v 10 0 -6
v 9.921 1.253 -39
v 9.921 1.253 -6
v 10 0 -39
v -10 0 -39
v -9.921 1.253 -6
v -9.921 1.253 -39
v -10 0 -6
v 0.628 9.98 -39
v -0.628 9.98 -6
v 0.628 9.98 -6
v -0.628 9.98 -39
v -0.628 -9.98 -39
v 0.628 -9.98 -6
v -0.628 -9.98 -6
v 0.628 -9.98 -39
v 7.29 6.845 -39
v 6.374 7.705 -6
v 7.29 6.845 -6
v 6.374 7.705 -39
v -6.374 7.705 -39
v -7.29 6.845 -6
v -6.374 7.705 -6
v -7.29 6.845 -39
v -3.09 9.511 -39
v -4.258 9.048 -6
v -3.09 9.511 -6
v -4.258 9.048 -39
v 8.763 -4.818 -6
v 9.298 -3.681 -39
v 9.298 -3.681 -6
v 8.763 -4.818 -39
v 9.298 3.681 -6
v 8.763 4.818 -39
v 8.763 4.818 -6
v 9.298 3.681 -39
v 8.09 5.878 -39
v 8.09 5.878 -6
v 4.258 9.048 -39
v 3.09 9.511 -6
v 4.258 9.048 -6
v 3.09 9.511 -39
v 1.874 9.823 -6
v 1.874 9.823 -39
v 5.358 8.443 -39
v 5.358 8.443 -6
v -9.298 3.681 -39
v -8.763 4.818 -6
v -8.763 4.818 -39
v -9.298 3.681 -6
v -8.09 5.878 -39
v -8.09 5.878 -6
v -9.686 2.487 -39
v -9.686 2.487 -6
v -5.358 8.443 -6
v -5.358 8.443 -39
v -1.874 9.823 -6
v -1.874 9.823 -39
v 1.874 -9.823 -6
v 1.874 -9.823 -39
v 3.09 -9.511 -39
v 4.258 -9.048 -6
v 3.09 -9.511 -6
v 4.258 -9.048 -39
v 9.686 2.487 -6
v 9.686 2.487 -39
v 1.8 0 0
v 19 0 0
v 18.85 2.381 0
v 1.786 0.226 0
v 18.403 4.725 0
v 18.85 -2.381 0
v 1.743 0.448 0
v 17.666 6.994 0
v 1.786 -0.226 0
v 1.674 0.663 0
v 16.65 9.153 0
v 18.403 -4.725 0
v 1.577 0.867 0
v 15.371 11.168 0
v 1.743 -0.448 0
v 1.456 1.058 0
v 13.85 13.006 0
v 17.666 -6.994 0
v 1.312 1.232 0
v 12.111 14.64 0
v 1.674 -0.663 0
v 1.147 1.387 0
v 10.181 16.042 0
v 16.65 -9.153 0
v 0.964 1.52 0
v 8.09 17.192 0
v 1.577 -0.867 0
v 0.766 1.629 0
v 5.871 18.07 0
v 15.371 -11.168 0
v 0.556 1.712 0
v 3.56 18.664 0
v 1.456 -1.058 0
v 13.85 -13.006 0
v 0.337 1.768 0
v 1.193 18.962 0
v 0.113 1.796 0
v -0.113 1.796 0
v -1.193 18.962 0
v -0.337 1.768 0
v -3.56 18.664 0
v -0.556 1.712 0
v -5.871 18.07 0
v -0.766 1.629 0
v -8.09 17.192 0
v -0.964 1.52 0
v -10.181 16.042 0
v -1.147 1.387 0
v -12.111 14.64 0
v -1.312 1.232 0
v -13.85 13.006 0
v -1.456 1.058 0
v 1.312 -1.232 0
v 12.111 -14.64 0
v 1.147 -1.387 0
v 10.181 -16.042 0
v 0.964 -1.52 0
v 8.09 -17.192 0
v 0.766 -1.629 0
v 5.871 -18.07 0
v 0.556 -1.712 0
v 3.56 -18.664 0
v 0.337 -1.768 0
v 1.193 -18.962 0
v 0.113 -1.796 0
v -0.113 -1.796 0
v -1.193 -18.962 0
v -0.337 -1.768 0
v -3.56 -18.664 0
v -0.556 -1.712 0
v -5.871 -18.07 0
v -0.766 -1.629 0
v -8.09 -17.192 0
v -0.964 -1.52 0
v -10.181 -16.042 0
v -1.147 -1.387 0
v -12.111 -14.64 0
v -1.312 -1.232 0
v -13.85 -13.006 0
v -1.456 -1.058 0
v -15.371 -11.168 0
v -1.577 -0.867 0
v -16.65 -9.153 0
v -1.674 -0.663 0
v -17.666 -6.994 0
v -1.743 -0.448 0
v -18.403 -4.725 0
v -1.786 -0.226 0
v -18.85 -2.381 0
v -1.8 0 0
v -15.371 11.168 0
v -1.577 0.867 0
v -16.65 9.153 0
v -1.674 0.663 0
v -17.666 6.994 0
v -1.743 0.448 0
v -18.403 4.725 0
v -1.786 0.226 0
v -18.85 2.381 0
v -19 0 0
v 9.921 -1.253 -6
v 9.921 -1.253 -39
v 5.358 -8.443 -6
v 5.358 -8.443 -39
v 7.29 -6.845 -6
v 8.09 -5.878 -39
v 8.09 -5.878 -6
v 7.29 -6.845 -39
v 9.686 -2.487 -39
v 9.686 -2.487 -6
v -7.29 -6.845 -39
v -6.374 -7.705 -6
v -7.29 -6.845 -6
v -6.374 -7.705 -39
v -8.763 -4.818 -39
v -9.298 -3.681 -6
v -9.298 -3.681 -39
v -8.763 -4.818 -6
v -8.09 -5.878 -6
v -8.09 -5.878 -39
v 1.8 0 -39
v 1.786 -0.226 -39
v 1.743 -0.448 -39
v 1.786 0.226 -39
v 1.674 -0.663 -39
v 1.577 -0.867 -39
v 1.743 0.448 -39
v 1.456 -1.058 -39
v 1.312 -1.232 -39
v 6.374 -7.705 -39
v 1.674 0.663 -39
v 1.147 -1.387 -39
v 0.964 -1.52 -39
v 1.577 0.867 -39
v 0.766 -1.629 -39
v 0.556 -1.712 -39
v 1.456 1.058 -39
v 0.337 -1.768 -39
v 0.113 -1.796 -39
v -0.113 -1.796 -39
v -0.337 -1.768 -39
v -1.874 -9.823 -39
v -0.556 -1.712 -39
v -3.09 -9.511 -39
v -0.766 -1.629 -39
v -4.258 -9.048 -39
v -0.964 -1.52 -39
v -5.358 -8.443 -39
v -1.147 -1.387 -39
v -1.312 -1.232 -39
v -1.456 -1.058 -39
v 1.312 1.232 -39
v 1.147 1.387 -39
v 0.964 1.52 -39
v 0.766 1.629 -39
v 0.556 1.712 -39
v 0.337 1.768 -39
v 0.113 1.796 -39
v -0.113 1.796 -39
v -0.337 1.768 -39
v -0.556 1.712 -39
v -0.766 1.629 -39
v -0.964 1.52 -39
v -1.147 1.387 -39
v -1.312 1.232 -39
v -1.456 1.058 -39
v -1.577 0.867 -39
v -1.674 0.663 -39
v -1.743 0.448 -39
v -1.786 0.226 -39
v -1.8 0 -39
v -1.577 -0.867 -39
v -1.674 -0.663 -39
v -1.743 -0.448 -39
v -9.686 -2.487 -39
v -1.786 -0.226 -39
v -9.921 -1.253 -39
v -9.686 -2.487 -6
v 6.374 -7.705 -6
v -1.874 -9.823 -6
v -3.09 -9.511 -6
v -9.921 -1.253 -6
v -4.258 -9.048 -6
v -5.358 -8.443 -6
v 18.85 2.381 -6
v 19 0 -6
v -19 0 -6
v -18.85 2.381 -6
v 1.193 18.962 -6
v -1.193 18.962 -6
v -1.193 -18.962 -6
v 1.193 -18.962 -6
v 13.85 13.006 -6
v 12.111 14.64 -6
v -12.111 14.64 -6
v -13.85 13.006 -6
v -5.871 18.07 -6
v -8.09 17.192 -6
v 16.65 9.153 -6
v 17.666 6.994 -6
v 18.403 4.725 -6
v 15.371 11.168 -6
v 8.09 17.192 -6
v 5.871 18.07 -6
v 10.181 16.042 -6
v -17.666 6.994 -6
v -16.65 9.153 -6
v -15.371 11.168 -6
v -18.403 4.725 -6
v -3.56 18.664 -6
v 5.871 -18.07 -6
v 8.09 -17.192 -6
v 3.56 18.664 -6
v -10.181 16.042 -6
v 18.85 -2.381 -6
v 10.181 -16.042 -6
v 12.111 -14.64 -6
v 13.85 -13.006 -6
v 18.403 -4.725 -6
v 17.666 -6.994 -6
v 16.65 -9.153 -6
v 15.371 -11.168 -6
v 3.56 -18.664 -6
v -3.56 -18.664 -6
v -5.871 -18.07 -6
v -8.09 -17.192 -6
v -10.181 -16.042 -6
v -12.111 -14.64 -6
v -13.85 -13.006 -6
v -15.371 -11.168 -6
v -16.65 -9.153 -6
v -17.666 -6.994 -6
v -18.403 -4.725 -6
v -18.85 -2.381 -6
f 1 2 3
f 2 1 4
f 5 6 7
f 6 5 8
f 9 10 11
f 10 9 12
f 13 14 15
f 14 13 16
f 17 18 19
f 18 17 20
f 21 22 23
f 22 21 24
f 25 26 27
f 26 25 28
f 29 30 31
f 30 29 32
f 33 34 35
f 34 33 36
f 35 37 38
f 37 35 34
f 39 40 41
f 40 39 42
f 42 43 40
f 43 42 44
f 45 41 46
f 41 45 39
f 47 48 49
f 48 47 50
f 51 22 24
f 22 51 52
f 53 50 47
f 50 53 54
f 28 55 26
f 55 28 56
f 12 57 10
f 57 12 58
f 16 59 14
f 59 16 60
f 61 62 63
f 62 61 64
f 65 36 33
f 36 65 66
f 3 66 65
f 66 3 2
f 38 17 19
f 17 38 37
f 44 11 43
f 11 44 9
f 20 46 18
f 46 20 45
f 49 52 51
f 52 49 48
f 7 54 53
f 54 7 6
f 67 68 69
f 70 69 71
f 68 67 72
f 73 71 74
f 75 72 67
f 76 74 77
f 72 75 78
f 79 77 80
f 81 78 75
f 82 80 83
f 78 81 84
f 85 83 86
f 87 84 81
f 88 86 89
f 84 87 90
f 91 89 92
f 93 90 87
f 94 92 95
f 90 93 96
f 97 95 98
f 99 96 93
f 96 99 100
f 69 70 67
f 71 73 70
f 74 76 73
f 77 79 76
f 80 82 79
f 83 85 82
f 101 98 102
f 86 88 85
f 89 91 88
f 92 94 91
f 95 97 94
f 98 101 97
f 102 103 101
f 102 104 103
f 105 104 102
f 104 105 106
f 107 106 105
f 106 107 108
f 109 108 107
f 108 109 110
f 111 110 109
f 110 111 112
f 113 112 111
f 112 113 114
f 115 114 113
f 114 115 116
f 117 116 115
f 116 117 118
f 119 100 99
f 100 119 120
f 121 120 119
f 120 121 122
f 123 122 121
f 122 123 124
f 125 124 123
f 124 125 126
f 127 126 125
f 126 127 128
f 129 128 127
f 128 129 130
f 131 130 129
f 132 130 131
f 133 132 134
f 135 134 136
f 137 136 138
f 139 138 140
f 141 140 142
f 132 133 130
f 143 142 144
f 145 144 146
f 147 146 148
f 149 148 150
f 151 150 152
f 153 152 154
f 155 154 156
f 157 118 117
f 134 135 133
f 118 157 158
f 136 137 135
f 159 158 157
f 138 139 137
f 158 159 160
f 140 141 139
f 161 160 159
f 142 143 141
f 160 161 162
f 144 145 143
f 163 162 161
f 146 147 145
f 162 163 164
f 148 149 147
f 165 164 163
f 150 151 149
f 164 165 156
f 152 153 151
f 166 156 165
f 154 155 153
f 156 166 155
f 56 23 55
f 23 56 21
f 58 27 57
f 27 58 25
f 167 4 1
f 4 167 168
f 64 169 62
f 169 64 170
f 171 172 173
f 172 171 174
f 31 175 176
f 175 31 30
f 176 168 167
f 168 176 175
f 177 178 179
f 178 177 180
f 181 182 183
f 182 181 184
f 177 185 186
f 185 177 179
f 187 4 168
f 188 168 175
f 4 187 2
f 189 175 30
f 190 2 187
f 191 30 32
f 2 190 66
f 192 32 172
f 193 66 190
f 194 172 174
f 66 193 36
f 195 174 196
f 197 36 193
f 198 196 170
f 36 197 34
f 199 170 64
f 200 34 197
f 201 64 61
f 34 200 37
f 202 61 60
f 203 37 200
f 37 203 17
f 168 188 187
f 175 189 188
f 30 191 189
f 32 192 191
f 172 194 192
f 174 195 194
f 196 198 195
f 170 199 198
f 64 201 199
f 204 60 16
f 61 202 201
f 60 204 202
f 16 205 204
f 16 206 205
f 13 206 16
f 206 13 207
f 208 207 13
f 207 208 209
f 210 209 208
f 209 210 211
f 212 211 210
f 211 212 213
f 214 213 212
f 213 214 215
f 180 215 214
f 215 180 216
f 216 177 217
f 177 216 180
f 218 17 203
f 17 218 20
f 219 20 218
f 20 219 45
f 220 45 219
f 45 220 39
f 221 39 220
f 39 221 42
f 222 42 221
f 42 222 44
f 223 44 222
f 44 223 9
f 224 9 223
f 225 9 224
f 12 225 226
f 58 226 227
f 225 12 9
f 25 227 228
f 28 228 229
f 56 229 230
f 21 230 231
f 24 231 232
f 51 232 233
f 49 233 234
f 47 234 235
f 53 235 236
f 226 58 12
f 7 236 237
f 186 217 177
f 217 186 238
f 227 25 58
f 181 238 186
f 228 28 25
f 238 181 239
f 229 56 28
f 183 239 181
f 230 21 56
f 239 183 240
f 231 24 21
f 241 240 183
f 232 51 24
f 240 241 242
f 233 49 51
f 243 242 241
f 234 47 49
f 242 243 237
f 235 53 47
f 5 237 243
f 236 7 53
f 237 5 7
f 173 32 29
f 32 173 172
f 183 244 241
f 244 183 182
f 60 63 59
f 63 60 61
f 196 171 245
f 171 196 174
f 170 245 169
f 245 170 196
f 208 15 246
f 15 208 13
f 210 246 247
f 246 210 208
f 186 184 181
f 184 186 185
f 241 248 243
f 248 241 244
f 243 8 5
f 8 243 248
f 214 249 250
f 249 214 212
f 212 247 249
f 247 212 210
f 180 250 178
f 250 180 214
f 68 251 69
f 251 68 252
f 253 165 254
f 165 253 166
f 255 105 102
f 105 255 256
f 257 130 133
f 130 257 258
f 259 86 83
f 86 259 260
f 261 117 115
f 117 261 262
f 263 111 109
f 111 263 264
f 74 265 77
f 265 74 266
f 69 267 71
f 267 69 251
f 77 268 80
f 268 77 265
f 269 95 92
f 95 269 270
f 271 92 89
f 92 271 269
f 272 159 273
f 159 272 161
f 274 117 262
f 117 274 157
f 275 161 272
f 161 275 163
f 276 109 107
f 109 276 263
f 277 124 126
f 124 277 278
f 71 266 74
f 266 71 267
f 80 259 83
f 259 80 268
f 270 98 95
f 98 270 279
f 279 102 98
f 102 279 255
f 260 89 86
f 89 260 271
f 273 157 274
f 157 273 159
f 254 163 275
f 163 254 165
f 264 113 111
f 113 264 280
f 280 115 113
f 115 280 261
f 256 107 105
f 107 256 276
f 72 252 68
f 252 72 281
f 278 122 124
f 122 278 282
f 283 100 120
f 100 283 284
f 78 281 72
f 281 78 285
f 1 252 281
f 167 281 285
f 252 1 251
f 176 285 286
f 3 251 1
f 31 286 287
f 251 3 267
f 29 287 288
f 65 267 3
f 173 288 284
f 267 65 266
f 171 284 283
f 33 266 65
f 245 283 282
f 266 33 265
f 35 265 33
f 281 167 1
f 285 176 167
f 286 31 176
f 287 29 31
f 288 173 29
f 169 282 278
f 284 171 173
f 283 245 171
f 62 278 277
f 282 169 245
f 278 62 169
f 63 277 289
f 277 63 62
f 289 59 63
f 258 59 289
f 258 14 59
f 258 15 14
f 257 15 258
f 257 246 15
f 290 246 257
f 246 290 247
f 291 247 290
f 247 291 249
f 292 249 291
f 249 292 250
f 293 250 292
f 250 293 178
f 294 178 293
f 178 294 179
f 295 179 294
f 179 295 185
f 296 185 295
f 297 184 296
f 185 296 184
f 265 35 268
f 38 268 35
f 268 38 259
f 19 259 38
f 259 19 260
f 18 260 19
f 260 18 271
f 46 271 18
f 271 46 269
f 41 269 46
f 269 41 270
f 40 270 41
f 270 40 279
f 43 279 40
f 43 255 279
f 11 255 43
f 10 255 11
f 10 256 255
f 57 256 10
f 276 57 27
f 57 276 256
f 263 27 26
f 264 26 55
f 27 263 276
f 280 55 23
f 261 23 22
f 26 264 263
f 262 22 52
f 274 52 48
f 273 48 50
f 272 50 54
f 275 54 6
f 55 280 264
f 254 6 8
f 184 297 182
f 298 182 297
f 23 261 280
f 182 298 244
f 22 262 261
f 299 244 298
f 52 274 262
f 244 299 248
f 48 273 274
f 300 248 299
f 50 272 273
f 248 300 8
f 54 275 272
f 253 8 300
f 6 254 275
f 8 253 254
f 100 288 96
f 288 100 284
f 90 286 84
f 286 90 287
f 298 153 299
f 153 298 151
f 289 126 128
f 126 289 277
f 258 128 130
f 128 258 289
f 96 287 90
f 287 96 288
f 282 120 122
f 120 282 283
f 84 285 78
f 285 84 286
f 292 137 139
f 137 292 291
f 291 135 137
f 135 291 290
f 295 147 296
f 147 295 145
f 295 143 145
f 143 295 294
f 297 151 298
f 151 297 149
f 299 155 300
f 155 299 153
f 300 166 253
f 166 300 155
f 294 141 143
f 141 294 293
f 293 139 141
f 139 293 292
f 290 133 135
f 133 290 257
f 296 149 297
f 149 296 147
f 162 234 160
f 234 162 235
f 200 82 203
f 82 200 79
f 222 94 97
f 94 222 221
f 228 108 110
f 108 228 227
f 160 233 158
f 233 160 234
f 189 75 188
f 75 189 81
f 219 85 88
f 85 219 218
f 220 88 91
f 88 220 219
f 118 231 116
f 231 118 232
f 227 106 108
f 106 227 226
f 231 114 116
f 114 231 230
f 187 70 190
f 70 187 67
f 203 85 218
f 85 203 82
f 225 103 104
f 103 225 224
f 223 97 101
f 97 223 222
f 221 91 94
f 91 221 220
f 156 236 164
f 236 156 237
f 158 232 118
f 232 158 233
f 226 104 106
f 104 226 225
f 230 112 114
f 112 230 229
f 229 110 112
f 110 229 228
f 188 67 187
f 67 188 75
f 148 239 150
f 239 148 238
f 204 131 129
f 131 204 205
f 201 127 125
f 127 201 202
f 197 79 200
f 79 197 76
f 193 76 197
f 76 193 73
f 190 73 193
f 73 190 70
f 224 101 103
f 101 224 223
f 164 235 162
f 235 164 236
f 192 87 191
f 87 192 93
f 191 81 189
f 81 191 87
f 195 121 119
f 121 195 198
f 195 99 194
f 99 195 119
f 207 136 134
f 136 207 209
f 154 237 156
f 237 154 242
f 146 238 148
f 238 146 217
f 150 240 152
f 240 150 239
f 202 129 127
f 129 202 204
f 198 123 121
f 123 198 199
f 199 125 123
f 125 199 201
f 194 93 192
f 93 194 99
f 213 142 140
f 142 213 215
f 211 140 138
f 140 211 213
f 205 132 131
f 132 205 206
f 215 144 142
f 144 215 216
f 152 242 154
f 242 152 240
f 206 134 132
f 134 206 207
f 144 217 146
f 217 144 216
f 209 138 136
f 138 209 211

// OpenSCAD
$fn = 50;


difference() {
	union() {
		translate(v = [0, 0, -39.0000000000]) {
			cylinder(h = 39, r = 10.0000000000);
		}
		translate(v = [0, 0, -6.0000000000]) {
			cylinder(h = 6, r = 19.0000000000);
		}
	}
	union() {
		#translate(v = [0, 0, -39]) {
			cylinder(h = 39, r = 1.8000000000);
		}
	}
}
